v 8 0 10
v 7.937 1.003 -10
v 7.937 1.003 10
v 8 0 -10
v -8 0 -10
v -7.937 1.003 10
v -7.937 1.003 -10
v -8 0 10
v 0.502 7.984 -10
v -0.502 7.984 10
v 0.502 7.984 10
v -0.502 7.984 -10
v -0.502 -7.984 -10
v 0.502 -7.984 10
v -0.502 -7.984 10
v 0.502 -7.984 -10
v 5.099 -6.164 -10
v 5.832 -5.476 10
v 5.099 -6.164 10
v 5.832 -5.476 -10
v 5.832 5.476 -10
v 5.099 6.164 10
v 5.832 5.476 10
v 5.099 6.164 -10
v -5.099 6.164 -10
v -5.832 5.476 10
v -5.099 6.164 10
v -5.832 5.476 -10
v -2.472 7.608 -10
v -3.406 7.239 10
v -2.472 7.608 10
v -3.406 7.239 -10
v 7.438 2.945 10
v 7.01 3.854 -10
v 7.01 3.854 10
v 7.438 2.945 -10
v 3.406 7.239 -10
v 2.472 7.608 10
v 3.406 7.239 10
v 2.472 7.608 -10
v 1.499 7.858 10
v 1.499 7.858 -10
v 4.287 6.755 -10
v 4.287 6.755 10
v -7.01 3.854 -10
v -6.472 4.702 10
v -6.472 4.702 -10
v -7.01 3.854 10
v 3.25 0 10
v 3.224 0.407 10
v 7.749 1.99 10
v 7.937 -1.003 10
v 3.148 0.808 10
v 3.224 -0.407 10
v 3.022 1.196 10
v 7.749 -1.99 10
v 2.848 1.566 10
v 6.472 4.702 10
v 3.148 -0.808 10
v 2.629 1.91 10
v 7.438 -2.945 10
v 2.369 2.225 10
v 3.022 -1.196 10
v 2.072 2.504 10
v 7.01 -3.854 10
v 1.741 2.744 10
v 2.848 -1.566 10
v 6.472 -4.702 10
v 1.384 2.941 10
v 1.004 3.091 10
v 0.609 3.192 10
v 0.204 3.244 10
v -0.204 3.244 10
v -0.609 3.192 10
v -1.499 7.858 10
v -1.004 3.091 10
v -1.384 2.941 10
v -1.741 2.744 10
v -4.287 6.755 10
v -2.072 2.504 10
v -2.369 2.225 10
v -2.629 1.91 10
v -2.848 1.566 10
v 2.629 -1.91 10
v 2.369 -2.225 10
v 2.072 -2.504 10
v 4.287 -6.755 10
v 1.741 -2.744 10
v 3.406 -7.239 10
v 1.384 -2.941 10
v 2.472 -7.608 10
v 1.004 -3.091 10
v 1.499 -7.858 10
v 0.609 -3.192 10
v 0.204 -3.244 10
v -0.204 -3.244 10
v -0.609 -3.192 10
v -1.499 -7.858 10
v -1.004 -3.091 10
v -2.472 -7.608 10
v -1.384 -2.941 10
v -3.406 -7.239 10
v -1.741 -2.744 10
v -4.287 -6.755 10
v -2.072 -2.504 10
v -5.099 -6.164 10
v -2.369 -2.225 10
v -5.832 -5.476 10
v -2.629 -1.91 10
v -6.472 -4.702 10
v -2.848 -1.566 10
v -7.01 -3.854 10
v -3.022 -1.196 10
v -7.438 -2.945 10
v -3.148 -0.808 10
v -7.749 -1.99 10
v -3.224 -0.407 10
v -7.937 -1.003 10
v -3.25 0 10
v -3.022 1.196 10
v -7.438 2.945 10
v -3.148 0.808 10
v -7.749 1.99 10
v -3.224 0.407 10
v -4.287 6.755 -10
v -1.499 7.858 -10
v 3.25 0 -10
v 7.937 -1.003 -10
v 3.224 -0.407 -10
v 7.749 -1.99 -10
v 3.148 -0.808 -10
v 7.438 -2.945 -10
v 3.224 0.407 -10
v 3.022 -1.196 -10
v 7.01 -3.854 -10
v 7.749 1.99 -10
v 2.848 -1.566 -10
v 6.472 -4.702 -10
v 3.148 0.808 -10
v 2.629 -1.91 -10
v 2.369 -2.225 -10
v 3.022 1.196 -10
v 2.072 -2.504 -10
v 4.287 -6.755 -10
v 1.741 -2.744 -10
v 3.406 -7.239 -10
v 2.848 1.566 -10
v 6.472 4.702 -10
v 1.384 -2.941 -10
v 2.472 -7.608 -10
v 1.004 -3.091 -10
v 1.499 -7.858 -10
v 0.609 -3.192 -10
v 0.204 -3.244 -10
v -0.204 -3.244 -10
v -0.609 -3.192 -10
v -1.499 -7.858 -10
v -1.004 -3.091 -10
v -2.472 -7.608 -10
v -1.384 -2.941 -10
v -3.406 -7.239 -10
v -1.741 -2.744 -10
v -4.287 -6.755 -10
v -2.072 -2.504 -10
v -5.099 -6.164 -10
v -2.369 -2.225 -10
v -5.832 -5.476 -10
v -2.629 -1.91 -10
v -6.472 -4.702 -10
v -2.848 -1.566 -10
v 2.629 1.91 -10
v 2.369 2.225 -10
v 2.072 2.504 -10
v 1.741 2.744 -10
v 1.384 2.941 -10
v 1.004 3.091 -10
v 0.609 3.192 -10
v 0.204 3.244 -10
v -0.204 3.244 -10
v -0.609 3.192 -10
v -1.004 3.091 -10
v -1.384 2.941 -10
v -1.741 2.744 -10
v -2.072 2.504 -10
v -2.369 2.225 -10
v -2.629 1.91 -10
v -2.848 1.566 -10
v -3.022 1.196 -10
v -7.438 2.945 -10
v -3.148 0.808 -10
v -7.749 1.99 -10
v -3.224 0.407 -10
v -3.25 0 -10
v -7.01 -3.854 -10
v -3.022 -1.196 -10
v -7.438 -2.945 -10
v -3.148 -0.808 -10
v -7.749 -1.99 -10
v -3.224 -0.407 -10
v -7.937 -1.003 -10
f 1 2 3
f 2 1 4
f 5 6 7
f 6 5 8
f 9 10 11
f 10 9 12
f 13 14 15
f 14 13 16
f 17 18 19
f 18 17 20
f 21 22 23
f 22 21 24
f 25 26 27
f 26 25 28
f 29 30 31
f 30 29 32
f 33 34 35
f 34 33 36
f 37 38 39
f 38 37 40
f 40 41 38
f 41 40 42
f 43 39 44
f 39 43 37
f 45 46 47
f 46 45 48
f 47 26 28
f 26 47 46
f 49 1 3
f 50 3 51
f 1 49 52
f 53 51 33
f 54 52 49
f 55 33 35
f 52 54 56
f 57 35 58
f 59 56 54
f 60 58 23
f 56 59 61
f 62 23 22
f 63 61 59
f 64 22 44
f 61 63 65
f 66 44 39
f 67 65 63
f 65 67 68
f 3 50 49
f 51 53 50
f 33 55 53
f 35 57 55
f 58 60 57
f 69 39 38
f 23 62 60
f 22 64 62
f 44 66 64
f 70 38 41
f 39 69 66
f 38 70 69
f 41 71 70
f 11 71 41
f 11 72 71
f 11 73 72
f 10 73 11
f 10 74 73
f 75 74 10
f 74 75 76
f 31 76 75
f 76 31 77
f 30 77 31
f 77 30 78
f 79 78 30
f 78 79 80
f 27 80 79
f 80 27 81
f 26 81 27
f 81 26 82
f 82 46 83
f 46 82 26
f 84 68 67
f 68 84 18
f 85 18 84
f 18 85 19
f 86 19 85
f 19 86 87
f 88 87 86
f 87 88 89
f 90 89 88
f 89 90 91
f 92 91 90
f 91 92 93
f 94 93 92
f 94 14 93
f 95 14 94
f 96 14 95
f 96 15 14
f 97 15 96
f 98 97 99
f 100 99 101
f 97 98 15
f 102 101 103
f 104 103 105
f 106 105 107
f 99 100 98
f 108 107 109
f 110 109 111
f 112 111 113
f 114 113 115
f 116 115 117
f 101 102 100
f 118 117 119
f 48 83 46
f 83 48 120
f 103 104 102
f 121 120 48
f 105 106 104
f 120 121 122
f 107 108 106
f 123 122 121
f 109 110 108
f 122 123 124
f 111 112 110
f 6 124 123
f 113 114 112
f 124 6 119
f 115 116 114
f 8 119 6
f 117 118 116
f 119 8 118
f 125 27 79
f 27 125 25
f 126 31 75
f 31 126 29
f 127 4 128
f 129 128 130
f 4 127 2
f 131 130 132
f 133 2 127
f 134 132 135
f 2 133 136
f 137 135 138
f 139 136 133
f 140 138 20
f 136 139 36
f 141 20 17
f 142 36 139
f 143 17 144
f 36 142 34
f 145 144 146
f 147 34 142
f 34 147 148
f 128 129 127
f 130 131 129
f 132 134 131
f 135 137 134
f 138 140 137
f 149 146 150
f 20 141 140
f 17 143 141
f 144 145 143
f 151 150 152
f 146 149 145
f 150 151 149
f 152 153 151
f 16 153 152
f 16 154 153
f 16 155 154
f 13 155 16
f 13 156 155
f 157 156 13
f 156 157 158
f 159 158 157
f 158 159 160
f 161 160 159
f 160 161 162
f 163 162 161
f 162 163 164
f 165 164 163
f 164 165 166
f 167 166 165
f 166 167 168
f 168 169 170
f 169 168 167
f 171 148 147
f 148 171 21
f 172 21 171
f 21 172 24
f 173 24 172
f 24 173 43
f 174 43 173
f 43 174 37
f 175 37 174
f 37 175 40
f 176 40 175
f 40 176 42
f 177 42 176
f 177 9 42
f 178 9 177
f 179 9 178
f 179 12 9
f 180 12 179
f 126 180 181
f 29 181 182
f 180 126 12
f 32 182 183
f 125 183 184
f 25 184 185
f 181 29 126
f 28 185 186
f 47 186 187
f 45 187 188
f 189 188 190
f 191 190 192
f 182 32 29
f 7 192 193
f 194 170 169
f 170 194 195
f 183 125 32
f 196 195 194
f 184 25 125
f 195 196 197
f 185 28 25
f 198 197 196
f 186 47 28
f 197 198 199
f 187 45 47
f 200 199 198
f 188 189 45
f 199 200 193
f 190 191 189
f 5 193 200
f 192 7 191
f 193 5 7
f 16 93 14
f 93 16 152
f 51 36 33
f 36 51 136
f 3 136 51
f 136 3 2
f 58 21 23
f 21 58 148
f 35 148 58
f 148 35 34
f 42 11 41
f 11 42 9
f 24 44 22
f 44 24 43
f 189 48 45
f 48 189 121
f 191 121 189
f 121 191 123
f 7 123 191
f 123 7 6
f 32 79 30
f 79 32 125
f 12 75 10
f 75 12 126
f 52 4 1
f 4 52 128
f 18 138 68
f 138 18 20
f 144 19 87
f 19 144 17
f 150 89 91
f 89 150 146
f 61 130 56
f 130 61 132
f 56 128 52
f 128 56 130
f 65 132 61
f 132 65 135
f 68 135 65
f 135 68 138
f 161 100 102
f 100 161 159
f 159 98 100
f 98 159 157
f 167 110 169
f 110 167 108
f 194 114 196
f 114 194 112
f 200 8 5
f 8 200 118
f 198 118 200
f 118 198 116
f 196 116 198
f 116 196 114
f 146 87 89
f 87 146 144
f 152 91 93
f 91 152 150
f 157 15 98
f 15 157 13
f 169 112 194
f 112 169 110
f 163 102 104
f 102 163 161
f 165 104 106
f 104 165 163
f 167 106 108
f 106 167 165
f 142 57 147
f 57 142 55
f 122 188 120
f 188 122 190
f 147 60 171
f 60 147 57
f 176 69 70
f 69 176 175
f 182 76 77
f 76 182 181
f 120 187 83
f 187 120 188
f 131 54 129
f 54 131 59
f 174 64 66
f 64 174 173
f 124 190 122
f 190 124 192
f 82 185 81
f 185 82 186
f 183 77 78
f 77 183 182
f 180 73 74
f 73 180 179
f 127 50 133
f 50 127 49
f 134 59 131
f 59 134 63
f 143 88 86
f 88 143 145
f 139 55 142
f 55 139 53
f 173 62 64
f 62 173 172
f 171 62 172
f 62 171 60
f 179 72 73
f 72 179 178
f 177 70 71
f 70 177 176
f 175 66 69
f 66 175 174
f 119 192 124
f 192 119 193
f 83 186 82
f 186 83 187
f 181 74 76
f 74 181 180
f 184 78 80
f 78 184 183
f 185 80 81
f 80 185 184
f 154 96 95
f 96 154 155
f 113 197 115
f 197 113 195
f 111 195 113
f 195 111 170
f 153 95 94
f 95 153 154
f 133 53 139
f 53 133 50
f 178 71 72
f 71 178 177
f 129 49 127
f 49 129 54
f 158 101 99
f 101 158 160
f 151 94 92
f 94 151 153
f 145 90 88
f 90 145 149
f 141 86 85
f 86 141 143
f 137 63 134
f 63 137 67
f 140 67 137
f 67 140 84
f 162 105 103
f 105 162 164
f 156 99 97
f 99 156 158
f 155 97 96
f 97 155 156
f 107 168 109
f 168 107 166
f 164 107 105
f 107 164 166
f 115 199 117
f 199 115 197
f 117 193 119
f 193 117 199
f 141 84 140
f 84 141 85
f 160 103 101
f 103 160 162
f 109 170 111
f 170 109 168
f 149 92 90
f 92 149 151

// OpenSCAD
$fn = 50;


difference() {
	union() {
		translate(v = [0, 0, -10.0000000000]) {
			cylinder(h = 20, r = 8.0000000000);
		}
	}
	union() {
		translate(v = [0, 0, -100.0000000000]) {
			cylinder(h = 200, r = 3.2500000000);
		}
	}
}
